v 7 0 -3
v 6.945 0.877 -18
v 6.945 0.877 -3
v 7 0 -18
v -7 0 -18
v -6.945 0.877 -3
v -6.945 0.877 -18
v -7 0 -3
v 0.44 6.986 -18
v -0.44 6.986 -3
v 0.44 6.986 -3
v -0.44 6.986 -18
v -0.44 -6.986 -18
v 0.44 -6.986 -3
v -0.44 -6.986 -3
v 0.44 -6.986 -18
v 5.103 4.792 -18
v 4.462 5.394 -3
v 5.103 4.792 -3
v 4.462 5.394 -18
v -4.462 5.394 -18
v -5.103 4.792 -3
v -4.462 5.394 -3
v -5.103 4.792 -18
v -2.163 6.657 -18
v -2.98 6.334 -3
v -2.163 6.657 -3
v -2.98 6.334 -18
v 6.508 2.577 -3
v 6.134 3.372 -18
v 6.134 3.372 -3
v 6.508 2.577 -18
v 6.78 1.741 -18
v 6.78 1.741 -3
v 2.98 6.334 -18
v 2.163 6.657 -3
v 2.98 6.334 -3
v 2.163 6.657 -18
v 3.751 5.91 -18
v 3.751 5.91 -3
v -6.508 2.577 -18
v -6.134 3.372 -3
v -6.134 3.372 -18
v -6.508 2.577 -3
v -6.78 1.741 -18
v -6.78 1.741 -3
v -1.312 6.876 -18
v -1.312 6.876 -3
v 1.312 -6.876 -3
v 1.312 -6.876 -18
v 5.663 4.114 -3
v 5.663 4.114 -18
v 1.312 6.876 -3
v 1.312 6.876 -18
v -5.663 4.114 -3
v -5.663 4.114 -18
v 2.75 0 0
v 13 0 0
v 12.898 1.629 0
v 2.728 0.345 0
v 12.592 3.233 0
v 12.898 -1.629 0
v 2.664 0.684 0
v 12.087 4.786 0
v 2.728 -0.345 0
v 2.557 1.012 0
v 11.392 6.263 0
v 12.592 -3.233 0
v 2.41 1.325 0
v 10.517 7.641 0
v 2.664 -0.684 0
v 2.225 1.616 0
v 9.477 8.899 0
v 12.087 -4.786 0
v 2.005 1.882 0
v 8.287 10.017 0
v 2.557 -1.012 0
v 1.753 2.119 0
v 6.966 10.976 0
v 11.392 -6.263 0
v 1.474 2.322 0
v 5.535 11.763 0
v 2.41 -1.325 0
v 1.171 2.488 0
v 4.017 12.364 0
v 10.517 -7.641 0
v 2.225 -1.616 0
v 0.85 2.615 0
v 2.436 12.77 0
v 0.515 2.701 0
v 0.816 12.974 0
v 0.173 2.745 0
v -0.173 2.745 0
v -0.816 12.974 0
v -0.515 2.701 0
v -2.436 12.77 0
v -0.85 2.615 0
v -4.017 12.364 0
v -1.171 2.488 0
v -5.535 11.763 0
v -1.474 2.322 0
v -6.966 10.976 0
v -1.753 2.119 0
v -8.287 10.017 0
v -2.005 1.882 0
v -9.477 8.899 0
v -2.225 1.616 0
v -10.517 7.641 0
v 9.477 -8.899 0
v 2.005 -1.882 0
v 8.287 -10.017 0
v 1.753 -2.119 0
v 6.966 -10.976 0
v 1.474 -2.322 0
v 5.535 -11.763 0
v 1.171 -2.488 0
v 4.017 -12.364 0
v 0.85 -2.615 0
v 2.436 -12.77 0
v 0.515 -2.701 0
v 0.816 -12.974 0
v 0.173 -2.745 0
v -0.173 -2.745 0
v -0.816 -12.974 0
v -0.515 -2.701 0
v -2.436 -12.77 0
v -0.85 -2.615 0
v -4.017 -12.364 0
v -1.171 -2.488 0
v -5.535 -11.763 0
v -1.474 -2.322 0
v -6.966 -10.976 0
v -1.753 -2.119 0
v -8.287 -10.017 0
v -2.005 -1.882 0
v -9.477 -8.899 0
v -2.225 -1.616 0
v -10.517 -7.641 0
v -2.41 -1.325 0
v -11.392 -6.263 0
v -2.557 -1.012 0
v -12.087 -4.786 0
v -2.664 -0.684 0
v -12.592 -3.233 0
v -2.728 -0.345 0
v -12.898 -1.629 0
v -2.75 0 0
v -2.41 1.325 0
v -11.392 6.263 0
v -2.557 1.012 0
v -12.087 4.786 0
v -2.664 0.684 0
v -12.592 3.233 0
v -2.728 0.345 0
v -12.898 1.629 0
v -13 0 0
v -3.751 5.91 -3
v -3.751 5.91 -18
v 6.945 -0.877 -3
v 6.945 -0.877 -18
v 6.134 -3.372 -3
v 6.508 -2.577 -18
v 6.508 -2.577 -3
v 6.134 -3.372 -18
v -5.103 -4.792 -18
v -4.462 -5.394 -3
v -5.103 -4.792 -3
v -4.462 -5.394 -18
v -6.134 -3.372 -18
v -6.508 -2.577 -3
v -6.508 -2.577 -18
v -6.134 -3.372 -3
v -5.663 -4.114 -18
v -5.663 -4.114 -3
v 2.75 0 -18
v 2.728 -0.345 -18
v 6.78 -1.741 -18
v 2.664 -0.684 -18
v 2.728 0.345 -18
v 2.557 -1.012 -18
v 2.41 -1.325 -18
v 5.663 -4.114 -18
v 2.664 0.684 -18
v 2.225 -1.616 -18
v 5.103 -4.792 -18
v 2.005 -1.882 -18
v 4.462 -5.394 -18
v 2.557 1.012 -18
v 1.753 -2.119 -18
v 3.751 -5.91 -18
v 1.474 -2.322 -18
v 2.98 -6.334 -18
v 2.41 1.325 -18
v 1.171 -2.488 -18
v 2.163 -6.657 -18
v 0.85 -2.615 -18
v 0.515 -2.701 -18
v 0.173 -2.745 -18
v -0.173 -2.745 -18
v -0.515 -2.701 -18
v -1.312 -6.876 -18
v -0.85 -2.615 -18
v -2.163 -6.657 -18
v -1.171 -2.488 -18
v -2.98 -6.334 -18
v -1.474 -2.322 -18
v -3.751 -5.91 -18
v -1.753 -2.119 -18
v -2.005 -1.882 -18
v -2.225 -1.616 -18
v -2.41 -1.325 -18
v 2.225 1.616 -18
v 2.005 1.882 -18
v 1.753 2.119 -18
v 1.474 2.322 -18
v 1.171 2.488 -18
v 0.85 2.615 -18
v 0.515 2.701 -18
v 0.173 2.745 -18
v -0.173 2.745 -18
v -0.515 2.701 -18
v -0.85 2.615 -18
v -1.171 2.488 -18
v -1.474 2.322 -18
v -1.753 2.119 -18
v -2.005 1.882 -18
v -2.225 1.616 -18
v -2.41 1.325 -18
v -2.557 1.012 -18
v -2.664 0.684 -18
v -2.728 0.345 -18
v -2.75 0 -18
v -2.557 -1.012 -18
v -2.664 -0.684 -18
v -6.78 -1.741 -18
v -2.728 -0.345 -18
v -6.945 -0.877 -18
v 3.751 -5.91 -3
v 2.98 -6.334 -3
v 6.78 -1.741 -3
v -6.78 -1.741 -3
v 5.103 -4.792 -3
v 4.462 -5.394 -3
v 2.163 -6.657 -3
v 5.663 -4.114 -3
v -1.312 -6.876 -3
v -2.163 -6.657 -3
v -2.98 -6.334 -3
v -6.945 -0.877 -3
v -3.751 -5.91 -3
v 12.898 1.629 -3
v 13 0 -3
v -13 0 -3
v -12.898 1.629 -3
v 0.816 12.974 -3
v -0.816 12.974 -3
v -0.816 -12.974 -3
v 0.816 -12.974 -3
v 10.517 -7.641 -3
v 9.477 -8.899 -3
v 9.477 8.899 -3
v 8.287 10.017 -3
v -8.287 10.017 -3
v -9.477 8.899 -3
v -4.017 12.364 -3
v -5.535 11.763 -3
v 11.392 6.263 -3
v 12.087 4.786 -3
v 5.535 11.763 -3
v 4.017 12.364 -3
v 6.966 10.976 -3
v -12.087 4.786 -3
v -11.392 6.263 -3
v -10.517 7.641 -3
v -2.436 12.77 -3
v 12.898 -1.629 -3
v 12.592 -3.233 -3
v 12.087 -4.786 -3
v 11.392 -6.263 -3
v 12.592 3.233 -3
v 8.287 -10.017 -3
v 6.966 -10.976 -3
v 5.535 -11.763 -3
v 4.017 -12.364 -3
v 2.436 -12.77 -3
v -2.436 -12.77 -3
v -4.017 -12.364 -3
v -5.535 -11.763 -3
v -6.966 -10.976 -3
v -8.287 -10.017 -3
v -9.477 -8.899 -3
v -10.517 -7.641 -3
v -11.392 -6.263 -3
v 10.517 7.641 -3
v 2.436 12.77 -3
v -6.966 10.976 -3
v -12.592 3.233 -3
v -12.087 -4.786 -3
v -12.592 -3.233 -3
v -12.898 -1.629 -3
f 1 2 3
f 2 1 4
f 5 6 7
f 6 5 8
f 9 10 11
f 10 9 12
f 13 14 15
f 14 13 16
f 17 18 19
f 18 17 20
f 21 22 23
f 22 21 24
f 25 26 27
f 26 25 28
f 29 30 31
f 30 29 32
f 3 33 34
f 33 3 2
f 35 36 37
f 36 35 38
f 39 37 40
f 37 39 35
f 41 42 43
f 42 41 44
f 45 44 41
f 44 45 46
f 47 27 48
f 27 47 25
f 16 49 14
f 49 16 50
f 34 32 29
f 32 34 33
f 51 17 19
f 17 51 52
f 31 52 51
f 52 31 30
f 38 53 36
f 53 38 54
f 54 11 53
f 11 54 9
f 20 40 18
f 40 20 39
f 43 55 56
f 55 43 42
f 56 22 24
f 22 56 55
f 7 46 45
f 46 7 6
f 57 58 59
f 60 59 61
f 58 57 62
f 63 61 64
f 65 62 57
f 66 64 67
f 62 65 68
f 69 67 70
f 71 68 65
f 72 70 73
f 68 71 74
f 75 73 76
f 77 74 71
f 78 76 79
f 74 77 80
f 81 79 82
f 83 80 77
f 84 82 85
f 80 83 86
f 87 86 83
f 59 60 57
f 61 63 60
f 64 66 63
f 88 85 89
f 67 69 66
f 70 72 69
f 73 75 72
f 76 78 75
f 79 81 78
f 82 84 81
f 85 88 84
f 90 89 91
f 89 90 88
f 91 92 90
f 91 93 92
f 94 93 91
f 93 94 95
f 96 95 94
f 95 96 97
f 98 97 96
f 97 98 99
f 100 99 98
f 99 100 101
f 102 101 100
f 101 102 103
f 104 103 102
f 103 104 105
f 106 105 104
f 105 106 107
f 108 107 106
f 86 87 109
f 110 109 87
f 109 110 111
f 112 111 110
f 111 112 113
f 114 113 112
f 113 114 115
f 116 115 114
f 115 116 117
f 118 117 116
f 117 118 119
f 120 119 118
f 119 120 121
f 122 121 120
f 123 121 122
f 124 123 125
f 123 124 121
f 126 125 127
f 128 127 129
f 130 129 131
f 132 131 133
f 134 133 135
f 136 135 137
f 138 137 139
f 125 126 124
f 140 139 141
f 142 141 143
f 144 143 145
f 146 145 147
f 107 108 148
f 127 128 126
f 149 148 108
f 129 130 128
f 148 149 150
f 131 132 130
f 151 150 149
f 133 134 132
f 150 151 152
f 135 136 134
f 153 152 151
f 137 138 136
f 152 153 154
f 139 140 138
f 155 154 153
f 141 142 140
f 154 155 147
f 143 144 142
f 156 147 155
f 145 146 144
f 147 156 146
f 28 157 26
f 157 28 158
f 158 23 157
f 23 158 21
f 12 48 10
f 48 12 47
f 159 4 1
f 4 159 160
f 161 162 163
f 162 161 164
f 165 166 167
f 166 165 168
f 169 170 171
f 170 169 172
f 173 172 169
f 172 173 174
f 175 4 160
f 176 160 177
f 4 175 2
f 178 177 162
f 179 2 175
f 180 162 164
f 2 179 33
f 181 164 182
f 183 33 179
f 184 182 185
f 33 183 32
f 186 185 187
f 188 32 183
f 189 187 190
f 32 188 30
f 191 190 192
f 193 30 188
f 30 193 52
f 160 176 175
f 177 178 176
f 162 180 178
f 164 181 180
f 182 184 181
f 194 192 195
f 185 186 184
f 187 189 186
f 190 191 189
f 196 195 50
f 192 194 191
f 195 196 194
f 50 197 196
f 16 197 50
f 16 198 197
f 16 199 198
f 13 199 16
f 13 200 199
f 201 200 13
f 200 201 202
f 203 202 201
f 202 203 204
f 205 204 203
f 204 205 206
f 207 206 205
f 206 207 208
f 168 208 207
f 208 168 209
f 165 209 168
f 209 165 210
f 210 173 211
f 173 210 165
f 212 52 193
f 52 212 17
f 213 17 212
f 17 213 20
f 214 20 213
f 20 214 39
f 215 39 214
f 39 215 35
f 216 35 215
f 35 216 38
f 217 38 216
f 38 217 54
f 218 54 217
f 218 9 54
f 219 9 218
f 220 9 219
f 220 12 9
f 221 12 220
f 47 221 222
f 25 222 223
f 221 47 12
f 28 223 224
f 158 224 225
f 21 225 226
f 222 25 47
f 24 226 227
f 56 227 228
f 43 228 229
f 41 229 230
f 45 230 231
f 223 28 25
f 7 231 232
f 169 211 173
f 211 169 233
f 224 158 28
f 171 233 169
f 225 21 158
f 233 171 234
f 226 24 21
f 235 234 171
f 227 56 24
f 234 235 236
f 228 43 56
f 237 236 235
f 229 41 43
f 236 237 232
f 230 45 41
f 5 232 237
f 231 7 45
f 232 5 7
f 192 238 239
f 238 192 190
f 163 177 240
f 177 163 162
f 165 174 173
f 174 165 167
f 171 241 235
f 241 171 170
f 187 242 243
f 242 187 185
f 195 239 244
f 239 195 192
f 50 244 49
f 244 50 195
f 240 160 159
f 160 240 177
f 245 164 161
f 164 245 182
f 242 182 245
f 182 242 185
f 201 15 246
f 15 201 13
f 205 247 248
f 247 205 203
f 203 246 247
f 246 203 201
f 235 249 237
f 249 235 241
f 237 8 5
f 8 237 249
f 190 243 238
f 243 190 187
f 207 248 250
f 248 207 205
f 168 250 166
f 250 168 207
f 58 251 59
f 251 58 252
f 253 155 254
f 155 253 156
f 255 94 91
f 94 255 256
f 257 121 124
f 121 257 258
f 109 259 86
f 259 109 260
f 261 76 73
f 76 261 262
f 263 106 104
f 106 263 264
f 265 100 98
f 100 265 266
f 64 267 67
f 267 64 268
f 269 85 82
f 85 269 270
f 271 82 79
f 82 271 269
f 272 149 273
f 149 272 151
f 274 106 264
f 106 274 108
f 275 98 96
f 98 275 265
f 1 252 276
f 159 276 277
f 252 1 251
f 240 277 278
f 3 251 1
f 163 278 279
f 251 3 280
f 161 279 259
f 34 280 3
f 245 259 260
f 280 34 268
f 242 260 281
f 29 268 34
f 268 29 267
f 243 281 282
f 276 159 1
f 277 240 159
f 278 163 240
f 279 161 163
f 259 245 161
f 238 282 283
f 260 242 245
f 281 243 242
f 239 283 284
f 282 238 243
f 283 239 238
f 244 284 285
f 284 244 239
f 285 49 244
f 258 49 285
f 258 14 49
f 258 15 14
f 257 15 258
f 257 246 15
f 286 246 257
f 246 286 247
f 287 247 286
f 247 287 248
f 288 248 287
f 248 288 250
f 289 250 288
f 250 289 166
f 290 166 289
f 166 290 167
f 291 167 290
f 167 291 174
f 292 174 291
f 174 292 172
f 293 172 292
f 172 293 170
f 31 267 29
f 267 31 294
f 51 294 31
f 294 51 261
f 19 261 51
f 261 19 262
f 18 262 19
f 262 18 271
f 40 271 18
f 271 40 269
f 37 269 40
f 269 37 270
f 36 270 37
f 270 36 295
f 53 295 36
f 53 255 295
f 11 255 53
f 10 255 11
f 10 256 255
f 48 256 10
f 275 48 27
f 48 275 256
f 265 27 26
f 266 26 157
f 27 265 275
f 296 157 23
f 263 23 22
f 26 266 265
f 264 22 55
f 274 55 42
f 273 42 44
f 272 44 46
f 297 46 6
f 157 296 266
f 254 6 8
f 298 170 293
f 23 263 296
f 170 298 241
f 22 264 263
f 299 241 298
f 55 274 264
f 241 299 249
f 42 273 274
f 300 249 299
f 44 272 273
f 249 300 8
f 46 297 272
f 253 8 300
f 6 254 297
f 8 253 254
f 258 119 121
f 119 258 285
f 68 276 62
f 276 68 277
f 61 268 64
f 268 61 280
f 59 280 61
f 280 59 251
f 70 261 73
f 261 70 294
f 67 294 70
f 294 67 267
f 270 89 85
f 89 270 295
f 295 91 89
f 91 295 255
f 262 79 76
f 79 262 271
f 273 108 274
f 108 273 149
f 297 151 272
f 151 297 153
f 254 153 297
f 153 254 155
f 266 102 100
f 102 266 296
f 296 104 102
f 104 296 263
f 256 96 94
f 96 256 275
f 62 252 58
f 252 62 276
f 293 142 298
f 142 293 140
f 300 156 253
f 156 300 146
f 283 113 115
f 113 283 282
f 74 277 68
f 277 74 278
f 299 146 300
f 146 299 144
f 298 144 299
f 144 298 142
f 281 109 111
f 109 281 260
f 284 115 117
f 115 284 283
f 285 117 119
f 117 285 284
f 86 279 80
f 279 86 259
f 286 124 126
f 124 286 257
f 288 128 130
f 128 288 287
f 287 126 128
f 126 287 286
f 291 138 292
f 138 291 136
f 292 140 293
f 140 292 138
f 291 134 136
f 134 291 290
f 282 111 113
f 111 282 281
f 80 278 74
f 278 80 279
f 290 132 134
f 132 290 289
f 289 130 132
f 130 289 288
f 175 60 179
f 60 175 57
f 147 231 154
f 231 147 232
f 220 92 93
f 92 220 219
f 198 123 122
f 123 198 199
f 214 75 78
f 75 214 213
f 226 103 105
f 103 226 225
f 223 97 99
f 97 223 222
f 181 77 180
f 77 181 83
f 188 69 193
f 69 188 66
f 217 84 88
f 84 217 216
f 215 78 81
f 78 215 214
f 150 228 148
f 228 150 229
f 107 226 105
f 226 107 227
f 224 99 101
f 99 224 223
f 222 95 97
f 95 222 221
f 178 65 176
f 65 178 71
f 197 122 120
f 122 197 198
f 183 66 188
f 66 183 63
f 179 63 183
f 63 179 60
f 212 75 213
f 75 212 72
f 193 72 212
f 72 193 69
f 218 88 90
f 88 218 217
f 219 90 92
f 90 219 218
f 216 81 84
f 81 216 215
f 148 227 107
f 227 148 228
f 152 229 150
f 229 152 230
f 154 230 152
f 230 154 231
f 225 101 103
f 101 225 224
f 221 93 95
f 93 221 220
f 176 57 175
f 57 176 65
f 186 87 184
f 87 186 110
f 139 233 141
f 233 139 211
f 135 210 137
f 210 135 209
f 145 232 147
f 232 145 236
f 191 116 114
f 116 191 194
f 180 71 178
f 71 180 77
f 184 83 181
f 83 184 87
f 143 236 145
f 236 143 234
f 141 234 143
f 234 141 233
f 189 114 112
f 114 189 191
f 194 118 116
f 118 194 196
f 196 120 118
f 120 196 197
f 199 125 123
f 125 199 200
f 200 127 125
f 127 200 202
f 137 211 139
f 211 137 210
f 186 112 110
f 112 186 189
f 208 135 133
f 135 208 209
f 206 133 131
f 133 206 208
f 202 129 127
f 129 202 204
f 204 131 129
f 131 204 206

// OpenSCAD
$fn = 50;


difference() {
	union() {
		translate(v = [0, 0, -18.0000000000]) {
			cylinder(h = 18, r = 7.0000000000);
		}
		translate(v = [0, 0, -3.0000000000]) {
			cylinder(h = 3, r = 13.0000000000);
		}
	}
	union() {
		#translate(v = [0, 0, -18]) {
			cylinder(h = 18, r = 2.7500000000);
		}
	}
}
